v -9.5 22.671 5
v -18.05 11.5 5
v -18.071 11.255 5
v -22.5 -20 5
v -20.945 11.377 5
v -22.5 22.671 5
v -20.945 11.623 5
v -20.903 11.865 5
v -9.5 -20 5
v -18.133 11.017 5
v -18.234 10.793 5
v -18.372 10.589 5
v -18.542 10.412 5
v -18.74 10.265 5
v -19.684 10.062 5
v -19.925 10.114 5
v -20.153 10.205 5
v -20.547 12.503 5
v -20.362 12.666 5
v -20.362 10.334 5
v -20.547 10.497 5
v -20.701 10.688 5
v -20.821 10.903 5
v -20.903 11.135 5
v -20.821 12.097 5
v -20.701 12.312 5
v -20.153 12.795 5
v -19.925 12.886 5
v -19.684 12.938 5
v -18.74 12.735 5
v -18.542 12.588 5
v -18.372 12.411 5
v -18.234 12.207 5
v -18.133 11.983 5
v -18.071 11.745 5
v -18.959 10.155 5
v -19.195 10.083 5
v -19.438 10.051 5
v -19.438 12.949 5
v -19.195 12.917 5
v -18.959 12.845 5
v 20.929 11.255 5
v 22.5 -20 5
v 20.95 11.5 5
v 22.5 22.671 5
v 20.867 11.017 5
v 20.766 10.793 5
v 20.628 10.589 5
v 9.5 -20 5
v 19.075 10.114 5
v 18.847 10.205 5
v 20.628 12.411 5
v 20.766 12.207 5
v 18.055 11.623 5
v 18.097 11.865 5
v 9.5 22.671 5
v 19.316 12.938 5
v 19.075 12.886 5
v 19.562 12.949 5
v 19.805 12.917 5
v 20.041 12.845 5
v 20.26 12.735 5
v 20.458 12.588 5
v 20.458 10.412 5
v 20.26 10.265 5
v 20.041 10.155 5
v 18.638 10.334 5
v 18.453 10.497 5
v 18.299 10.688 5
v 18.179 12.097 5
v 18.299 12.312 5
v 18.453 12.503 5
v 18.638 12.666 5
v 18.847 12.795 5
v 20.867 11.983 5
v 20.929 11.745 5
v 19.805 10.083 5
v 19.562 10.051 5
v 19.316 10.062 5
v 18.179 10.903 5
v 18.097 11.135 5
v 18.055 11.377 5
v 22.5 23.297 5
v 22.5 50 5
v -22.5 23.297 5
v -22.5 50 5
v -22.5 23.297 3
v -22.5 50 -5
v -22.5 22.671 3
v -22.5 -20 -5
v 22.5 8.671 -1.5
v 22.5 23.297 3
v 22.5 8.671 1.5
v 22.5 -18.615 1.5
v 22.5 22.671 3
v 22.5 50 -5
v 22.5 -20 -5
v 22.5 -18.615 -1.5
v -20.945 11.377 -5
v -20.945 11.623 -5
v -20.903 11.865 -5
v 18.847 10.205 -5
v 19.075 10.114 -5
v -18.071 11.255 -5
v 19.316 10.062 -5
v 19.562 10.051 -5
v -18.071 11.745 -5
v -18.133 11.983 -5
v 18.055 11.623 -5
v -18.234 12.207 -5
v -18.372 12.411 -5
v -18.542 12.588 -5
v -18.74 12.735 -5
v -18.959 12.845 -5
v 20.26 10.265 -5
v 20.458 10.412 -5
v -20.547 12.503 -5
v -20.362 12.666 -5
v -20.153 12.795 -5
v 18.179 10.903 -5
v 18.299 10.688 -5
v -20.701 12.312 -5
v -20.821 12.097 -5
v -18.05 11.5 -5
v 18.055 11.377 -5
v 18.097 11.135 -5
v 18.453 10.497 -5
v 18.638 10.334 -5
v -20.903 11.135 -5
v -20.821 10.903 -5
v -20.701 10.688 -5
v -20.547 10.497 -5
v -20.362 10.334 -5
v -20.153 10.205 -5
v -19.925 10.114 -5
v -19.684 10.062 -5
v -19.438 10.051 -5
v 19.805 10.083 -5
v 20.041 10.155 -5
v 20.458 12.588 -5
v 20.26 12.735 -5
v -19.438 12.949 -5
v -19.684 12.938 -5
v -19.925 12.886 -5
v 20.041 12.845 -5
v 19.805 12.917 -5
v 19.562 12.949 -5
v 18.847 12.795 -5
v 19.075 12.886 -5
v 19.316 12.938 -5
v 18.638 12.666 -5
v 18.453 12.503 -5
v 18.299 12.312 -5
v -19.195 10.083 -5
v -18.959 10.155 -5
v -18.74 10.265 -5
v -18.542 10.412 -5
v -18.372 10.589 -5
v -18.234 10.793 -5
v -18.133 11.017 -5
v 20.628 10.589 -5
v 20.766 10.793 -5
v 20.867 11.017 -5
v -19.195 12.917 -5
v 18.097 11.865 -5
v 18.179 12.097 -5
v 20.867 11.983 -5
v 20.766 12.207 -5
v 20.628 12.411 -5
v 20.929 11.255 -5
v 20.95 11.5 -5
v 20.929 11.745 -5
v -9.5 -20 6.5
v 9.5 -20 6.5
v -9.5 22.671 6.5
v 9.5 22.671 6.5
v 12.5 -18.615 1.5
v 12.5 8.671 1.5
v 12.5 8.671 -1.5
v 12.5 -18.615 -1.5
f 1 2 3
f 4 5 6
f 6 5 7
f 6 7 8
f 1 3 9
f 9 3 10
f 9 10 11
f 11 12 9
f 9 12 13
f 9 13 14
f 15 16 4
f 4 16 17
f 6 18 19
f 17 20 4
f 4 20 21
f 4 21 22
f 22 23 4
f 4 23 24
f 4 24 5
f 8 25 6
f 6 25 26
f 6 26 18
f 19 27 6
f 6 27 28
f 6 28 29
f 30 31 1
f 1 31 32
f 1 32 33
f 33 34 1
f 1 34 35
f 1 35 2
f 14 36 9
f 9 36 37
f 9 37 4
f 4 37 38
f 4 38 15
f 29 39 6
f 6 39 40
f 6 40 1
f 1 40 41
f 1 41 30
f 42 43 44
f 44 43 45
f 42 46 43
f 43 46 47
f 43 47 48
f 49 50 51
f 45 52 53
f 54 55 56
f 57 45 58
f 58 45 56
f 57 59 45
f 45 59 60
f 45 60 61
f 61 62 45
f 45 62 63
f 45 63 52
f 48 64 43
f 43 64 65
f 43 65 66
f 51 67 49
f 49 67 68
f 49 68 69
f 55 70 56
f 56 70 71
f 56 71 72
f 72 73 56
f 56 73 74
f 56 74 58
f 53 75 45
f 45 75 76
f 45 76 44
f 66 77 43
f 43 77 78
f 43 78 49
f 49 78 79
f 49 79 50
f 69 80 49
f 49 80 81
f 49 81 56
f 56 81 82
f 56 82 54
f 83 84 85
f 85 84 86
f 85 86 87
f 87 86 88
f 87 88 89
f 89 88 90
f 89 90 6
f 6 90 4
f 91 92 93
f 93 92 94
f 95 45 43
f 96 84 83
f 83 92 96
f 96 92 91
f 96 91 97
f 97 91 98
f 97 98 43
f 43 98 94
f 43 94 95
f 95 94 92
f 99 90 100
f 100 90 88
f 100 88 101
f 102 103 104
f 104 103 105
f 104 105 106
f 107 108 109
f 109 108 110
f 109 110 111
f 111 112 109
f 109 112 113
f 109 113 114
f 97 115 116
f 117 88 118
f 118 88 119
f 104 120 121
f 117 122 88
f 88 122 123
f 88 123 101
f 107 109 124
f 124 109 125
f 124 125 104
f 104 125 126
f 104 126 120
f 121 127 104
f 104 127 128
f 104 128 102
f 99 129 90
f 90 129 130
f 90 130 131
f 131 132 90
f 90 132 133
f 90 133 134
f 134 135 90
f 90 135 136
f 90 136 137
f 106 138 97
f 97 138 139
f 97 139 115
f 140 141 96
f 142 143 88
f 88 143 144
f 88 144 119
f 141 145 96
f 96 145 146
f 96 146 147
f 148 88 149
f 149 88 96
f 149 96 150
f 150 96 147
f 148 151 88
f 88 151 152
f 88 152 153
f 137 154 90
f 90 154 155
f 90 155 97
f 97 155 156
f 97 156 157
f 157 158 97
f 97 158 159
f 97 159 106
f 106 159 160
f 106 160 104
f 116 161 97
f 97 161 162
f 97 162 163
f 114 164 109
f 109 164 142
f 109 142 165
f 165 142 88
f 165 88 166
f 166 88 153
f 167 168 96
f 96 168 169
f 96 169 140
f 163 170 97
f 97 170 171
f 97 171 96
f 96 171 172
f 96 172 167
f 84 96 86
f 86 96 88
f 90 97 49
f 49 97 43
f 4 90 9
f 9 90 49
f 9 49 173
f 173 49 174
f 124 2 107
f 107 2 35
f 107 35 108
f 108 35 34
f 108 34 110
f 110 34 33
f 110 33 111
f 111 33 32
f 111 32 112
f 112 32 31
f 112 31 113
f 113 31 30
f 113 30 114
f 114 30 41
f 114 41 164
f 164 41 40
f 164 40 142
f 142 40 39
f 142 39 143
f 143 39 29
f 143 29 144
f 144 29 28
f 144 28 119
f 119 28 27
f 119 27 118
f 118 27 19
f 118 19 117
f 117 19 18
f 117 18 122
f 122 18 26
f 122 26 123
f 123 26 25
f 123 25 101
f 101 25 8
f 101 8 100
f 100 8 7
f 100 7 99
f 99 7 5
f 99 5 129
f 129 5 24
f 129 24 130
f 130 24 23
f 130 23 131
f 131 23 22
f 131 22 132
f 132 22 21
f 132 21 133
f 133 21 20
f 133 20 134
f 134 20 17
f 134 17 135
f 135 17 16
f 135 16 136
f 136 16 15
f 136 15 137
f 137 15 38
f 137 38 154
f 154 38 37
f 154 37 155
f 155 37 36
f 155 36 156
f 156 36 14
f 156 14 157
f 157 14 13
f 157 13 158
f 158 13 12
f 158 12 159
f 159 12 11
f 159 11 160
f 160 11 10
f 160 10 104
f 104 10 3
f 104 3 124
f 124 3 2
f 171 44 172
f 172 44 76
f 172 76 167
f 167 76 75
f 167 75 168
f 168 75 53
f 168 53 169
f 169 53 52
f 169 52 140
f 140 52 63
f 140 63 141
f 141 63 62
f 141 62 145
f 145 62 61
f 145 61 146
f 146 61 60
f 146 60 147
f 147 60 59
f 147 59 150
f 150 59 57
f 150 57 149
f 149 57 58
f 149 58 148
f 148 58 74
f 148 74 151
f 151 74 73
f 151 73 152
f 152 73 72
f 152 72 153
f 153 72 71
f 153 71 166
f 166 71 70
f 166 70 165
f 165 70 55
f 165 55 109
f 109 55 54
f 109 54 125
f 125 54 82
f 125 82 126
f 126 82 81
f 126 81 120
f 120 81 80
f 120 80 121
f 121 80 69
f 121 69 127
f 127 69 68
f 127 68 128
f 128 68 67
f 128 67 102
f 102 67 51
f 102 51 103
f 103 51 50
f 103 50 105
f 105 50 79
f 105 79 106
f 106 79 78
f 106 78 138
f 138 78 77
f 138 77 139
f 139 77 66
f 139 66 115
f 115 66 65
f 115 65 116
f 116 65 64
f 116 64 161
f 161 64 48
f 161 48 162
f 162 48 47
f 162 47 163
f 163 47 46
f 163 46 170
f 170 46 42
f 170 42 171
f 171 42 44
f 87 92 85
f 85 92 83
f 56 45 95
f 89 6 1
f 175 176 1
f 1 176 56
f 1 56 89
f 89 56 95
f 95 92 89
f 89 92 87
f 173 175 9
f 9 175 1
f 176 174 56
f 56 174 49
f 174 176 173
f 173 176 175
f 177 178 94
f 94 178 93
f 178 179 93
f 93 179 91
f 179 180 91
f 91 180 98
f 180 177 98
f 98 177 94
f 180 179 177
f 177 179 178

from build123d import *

# Parameters (mm, degrees)
SKETCH2_W           = 45
SKETCH2_H           = 10
BOSS_EXTRUDE1_DEPTH = 40
SKETCH4_W           = 45
SKETCH4_H           = 10
BOSS_EXTRUDE2_DEPTH = 10
SKETCH8_W           = 45
SKETCH8_H           = 10
BOSS_EXTRUDE3_DEPTH = 20
SKETCH9_R           = 1.45
CUT_EXTRUDE2_DEPTH  = 20
SKETCH10_W          = 45
SKETCH10_H          = 0.626165357
CUT_EXTRUDE3_DEPTH  = 2
SKETCH11_W          = 19
SKETCH11_H          = 42.671327575
BOSS_EXTRUDE4_DEPTH = 1.5
SKETCH12_W          = 3
SKETCH12_H          = 27.286335608
CUT_EXTRUDE6_DEPTH  = 10


with BuildPart() as part:
    # Sketch2 → Boss-Extrude1 (new body)
    with BuildSketch(Plane(origin=(0, 0, 0), x_dir=(1, 0, 0), z_dir=(0, 1, 0))):
        Rectangle(SKETCH2_W, SKETCH2_H)
    extrude(amount=BOSS_EXTRUDE1_DEPTH)

    # Sketch4 → Boss-Extrude2 (add)
    with BuildSketch(Plane(origin=(0, 40, 0), x_dir=(1, 0, 0), z_dir=(0, 1, 0))):
        Rectangle(SKETCH4_W, SKETCH4_H)
    extrude(amount=BOSS_EXTRUDE2_DEPTH)

    # Sketch8 → Boss-Extrude3 (add)
    with BuildSketch(Plane.XZ):
        Rectangle(SKETCH8_W, SKETCH8_H)
    extrude(amount=BOSS_EXTRUDE3_DEPTH)

    # Sketch9 → Cut-Extrude2 (cut)
    with BuildSketch(Plane.XY.offset(5)):
        with Locations((19.5, 11.5)):
            Circle(SKETCH9_R)
        with Locations((-19.5, 11.5)):
            Circle(SKETCH9_R)
    extrude(amount=-CUT_EXTRUDE2_DEPTH, mode=Mode.SUBTRACT)

    # Sketch10 → Cut-Extrude3 (cut)
    with BuildSketch(Plane.XY.offset(5)):
        with Locations((0, 22.984410254)):
            Rectangle(SKETCH10_W, SKETCH10_H)
    extrude(amount=-CUT_EXTRUDE3_DEPTH, mode=Mode.SUBTRACT)

    # Sketch11 → Boss-Extrude4 (add)
    with BuildSketch(Plane.XY.offset(5)):
        with Locations((0, 1.335663788)):
            Rectangle(SKETCH11_W, SKETCH11_H)
    extrude(amount=BOSS_EXTRUDE4_DEPTH)

    # Sketch12 → Cut-Extrude6 (cut)
    with BuildSketch(Plane(origin=(22.5, 0, 0), x_dir=(0, 0, -1), z_dir=(1, 0, 0))):
        with Locations((0, -4.971840229)):
            Rectangle(SKETCH12_W, SKETCH12_H)
    extrude(amount=-CUT_EXTRUDE6_DEPTH, mode=Mode.SUBTRACT)


solid = part.part
